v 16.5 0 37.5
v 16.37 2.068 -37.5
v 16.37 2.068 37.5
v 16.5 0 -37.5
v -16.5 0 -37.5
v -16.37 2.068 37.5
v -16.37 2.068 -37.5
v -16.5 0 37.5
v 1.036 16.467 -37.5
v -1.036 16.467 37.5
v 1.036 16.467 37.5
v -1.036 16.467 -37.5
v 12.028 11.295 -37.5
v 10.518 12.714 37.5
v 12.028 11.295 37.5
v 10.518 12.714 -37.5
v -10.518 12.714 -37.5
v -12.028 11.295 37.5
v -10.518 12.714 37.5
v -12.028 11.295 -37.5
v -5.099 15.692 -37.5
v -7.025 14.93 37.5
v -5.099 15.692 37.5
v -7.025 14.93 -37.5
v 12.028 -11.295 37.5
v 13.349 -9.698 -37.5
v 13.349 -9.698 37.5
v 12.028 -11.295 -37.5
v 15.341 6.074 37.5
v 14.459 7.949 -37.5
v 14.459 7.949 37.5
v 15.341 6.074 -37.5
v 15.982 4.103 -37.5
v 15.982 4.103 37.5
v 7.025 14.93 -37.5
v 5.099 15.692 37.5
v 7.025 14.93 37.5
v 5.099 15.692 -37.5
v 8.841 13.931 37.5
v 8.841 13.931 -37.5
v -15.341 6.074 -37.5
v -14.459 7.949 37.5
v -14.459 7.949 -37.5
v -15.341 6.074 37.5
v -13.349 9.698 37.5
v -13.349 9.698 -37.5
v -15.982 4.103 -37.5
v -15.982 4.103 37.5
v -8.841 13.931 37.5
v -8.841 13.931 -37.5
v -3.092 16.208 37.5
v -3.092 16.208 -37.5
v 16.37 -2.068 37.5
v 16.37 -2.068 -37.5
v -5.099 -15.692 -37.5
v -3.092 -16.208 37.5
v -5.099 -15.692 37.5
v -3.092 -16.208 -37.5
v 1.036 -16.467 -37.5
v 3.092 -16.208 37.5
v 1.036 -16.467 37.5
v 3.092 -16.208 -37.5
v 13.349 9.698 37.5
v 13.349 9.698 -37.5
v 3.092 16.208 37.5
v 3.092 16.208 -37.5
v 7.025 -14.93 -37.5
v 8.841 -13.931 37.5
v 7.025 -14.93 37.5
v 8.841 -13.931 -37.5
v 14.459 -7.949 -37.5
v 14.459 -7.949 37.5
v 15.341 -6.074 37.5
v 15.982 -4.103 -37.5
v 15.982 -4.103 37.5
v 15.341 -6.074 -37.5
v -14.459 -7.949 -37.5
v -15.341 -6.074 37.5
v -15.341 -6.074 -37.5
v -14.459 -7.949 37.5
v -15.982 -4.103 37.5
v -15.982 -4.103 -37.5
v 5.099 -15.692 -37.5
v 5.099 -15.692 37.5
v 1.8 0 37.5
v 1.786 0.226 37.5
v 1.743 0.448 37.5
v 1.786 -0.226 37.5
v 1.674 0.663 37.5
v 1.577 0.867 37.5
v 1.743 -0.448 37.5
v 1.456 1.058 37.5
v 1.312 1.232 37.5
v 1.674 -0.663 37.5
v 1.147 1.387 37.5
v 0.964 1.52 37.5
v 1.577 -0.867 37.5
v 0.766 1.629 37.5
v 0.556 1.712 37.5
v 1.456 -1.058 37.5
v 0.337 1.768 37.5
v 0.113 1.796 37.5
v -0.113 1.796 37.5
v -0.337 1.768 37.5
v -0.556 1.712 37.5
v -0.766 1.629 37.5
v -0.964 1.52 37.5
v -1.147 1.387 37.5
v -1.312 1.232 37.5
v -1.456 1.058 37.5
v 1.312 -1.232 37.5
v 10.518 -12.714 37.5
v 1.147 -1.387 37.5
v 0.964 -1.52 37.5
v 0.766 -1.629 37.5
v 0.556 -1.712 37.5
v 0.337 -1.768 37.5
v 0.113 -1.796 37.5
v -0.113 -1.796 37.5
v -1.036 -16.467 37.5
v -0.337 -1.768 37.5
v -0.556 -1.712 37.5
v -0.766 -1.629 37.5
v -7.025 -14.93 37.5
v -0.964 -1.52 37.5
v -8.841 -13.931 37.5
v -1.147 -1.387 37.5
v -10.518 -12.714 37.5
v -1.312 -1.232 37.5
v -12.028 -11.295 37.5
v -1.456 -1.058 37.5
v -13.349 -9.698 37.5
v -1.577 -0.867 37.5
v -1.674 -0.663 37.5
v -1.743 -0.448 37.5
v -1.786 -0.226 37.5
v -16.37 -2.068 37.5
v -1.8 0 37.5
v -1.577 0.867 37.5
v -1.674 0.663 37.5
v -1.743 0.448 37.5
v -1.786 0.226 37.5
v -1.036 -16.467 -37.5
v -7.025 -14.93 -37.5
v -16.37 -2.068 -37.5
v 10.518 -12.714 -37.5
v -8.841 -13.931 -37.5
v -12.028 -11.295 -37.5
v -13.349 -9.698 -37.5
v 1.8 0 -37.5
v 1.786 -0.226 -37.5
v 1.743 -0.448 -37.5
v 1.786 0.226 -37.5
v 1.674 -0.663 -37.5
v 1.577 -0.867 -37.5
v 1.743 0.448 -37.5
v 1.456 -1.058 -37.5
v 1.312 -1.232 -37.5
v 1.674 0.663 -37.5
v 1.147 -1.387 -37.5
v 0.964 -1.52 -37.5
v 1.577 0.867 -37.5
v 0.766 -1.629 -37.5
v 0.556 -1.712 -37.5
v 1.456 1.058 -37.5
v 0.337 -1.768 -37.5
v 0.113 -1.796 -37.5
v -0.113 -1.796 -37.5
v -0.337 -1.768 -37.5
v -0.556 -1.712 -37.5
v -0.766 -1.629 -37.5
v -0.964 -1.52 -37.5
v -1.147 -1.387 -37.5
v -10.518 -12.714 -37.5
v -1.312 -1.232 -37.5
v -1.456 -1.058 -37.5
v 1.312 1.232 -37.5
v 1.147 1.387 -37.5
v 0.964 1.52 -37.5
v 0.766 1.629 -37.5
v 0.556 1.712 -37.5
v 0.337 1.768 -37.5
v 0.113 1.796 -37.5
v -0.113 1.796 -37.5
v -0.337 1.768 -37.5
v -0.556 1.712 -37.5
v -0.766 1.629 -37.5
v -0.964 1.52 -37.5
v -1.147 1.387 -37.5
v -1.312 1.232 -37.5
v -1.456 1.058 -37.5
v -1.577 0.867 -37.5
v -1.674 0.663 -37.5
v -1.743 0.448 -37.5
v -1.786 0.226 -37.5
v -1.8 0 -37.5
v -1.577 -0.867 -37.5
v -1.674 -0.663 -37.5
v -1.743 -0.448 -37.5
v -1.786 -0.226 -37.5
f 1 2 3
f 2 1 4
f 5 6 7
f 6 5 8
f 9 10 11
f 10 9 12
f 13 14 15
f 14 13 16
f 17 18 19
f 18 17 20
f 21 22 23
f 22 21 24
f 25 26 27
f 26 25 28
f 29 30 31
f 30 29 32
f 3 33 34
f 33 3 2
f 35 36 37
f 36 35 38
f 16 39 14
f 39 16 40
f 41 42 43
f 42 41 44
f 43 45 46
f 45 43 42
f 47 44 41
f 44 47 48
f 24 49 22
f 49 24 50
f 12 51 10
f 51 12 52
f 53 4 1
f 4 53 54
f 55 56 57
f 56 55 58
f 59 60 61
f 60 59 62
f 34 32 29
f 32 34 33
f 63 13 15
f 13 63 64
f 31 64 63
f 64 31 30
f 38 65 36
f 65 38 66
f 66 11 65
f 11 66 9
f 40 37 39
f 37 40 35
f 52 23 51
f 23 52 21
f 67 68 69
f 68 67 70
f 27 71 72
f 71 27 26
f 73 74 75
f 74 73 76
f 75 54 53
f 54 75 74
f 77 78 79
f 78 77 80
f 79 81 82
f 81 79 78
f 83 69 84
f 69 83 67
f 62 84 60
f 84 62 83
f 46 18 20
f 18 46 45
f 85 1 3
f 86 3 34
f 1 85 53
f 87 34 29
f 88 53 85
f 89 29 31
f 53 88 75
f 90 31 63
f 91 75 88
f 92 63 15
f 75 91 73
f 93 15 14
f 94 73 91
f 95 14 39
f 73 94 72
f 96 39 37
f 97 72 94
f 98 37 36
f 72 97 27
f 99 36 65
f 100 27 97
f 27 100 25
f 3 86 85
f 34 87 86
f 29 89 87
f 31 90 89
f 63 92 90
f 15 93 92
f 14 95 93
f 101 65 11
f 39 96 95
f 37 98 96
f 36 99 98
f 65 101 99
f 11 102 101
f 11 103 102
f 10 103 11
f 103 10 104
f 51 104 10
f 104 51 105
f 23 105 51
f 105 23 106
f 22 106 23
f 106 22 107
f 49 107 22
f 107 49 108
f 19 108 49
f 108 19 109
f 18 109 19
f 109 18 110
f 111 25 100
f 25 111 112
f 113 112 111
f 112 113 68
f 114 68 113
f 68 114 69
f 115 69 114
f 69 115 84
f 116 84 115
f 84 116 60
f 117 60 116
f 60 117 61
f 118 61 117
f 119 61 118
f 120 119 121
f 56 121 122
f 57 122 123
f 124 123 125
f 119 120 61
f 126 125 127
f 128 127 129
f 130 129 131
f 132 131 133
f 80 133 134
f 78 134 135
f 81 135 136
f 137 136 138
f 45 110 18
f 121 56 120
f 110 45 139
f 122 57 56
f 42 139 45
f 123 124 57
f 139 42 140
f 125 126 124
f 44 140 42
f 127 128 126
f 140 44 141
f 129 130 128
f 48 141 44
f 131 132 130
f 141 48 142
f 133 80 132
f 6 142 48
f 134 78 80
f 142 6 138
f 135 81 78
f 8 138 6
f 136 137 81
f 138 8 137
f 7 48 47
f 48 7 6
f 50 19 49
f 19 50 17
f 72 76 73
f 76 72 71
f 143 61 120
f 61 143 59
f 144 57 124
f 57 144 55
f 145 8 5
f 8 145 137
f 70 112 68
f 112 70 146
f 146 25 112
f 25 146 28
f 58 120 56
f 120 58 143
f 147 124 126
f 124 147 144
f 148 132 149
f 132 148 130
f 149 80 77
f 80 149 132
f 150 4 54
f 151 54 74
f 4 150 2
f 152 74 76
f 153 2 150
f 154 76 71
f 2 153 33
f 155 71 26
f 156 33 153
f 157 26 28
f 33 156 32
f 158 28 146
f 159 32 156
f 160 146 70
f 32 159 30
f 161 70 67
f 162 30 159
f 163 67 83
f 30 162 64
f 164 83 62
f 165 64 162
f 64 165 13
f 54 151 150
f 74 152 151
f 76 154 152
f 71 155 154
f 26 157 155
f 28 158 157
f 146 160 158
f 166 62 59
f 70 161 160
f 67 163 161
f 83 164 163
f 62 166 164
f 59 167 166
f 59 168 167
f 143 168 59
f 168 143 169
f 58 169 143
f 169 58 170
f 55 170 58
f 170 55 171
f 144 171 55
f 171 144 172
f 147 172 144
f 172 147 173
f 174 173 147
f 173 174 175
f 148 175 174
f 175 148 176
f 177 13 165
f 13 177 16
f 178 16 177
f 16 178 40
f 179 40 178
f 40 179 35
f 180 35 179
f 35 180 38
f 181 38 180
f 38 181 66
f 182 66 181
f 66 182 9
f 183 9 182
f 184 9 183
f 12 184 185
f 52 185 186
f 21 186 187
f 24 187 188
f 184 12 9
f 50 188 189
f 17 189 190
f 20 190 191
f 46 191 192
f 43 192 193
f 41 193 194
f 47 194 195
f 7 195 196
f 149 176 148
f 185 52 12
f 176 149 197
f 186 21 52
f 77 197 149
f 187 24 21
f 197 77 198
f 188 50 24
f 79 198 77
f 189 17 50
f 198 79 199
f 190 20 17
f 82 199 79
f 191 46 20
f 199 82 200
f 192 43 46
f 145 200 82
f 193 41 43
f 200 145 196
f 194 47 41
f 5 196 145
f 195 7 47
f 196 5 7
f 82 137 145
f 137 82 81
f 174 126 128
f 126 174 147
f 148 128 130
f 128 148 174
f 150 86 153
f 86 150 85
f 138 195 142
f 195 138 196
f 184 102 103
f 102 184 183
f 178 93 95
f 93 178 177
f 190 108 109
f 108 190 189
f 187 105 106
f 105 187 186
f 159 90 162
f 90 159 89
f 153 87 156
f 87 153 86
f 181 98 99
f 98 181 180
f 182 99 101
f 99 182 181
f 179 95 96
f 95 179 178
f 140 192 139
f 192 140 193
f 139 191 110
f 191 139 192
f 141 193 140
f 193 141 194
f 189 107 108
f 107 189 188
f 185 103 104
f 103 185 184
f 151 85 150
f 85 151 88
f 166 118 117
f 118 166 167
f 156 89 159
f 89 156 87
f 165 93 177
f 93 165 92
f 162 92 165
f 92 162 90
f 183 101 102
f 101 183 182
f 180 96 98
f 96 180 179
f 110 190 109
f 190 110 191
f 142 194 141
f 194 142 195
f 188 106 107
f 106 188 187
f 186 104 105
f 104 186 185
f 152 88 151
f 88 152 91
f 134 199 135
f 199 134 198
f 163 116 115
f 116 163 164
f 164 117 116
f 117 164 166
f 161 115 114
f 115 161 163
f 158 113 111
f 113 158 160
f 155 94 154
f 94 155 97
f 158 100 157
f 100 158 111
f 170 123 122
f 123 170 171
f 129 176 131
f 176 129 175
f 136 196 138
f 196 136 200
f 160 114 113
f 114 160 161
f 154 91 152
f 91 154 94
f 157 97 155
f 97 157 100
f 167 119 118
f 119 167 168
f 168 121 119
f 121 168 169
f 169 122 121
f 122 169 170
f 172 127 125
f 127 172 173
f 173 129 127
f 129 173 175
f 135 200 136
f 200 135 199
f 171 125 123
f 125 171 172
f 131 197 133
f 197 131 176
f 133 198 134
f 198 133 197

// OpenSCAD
$fn = 50;


difference() {
	union() {
		translate(v = [0, 0, -37.5000000000]) {
			cylinder(h = 75, r = 16.5000000000);
		}
	}
	union() {
		translate(v = [0, 0, -100.0000000000]) {
			cylinder(h = 200, r = 1.8000000000);
		}
	}
}
